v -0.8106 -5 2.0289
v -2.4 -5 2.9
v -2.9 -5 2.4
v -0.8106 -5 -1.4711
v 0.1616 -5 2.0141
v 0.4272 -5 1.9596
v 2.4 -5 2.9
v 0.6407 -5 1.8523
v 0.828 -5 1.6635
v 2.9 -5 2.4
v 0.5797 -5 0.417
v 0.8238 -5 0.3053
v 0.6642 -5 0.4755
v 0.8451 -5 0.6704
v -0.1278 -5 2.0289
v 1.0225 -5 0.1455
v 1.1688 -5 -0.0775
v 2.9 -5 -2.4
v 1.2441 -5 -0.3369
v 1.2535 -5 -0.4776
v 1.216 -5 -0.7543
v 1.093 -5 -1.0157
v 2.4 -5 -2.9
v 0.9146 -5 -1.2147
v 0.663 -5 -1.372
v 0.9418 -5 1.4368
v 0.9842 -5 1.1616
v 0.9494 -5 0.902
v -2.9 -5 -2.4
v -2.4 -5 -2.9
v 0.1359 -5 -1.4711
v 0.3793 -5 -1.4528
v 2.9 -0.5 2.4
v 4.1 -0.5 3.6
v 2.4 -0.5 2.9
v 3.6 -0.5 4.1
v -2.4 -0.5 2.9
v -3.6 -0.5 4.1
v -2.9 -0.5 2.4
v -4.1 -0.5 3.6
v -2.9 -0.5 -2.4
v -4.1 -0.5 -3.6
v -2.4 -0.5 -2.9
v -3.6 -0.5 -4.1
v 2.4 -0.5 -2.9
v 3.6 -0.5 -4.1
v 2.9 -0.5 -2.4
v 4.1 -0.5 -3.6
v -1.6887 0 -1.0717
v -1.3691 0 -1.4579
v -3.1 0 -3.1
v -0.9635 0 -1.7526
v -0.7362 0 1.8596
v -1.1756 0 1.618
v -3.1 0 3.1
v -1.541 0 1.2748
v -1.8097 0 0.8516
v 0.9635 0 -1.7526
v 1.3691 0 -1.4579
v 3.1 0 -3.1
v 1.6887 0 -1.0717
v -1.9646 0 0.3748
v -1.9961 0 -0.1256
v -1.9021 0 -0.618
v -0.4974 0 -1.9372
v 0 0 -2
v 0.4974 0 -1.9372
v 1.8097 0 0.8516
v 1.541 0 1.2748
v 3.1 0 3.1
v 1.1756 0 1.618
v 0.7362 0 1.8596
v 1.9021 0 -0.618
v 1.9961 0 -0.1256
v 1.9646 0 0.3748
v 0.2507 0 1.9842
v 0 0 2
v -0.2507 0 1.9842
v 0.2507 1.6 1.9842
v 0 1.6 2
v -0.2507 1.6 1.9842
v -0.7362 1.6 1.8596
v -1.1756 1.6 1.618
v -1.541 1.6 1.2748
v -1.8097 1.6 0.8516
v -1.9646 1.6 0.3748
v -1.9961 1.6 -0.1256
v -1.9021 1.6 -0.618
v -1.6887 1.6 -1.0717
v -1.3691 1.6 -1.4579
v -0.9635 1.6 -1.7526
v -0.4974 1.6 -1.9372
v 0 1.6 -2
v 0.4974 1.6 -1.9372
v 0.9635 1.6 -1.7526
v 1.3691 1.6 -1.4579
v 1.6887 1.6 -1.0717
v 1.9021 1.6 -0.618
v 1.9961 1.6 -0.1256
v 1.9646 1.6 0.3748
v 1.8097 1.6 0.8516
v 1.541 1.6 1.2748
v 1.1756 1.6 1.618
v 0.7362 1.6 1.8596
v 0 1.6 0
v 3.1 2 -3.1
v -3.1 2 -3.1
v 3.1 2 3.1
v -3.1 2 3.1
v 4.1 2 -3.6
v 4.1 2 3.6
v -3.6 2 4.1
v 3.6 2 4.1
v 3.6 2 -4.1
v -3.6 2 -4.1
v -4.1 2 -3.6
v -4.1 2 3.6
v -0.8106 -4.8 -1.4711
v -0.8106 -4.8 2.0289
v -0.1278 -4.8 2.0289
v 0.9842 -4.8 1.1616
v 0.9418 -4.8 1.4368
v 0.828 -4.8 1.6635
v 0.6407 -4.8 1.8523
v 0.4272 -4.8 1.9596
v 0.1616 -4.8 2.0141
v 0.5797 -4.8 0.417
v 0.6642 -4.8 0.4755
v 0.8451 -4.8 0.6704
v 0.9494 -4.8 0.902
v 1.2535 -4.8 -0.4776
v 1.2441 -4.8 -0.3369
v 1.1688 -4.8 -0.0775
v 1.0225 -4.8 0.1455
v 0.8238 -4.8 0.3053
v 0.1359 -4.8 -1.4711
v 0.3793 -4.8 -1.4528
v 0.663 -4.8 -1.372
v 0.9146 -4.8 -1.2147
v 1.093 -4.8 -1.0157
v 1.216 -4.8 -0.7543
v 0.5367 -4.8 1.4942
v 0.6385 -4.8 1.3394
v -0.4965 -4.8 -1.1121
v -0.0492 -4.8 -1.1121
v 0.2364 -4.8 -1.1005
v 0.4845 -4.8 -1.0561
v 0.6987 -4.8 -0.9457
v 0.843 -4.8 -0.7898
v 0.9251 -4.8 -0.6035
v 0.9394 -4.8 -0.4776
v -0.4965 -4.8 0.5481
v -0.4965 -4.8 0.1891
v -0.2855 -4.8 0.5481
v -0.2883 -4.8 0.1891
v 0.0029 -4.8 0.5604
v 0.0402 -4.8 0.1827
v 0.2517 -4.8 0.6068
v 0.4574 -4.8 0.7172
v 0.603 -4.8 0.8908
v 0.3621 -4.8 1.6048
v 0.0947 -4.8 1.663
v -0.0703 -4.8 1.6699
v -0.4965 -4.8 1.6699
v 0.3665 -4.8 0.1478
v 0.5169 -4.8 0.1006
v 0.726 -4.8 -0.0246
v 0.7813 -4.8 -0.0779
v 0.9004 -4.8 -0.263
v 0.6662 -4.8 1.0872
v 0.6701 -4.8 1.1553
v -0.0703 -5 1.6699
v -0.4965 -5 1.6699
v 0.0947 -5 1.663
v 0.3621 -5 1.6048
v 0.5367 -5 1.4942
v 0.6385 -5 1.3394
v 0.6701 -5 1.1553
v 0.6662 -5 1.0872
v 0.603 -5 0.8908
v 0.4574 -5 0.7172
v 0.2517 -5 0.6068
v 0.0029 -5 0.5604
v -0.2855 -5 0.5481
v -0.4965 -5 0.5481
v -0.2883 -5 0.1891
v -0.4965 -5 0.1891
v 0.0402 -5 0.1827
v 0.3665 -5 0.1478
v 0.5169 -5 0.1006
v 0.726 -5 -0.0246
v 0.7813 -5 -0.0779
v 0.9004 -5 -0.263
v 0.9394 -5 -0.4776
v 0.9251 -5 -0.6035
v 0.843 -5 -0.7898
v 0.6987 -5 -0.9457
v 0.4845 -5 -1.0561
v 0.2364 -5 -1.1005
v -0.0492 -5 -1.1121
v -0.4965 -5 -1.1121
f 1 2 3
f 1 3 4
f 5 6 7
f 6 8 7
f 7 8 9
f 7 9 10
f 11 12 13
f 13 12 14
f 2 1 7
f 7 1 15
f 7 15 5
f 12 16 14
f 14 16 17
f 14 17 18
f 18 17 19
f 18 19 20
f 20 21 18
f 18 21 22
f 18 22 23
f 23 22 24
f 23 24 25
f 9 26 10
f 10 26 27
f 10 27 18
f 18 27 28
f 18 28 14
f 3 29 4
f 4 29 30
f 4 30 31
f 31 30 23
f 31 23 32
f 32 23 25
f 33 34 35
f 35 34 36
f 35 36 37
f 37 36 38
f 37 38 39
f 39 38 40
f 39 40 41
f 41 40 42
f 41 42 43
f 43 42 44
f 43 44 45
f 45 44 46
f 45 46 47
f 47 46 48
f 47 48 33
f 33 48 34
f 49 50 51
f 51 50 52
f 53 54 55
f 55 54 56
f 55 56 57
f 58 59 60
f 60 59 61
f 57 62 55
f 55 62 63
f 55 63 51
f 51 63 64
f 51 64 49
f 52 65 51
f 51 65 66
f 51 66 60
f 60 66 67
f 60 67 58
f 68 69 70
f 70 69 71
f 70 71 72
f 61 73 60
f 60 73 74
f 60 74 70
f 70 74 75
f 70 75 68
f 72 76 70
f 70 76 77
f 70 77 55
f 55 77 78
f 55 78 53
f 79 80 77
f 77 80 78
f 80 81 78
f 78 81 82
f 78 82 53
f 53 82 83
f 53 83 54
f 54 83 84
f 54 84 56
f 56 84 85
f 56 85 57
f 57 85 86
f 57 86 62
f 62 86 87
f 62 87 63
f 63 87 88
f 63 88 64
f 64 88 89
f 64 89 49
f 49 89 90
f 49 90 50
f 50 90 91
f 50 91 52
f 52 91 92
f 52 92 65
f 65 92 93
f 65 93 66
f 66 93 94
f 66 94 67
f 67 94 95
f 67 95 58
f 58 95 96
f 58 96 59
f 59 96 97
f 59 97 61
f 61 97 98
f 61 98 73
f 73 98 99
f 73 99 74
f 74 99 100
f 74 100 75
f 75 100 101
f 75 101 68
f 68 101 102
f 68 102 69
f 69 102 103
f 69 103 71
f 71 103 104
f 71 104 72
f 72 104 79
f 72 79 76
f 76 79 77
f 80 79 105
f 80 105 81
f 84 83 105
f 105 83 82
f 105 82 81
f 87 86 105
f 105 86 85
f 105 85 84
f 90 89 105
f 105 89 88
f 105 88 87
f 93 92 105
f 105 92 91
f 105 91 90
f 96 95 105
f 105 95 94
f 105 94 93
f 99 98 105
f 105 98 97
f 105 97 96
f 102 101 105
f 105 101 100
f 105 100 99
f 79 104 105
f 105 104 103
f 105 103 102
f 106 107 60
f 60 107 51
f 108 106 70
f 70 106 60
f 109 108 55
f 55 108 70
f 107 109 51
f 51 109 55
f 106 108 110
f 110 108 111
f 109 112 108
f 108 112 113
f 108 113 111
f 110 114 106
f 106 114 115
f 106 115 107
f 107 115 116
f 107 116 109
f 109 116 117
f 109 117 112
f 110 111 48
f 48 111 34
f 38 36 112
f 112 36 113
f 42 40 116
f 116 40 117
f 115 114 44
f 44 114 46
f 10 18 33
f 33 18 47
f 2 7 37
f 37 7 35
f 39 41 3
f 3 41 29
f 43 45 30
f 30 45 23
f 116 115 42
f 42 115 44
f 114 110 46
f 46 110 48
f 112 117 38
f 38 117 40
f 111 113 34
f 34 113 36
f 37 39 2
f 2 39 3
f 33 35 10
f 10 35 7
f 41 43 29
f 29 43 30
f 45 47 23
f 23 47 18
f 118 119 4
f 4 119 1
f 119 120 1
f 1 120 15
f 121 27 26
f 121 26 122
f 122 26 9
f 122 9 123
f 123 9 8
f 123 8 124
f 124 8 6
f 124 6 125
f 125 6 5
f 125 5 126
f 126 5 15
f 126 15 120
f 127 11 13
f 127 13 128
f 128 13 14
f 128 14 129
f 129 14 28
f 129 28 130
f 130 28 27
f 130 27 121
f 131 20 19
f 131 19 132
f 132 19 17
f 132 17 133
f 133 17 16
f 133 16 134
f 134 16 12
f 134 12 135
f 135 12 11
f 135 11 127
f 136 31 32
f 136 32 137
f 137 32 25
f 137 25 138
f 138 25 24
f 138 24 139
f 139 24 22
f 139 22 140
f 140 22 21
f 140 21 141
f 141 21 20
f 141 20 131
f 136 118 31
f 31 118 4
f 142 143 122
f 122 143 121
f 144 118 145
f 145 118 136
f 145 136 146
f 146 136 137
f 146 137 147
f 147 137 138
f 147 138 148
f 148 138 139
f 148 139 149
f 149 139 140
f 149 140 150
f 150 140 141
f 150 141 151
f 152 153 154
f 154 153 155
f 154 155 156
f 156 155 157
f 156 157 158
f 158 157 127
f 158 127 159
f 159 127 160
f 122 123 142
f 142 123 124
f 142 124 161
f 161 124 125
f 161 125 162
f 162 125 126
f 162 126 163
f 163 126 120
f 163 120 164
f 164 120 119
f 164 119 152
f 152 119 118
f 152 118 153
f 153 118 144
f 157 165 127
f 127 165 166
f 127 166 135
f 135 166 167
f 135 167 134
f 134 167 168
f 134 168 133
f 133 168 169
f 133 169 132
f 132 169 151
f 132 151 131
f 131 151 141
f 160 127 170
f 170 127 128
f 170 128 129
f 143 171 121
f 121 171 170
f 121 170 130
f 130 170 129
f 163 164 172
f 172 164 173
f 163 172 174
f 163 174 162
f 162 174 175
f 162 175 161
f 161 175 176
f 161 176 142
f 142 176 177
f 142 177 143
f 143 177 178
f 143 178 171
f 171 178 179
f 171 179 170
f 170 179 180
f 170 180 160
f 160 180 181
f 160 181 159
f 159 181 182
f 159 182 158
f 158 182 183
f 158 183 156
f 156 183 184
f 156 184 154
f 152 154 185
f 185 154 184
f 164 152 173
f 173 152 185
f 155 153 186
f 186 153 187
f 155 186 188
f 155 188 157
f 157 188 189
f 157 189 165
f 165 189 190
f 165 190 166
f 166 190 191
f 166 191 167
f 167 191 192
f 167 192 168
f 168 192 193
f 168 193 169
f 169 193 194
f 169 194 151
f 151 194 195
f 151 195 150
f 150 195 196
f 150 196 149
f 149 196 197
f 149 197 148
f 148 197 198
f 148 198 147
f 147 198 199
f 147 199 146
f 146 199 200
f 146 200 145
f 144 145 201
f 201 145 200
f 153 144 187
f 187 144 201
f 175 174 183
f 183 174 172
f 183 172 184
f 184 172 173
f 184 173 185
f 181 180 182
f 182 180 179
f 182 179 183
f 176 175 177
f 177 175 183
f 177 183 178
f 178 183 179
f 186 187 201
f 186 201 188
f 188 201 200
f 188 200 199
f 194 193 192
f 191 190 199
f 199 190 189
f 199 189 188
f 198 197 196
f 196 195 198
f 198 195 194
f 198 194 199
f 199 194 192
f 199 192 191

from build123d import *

# Parameters (mm, degrees)
SKETCH1_R           = 2
BOSS_EXTRUDE1_DEPTH = 1.6
SKETCH1_3_W         = 8.2
SKETCH1_3_H         = 8.2
SKETCH1_3_W_2       = 6.2
SKETCH1_3_H_2       = 6.2
BOSS_EXTRUDE2_DEPTH = 2
SKETCH1_4_W         = 8.2
SKETCH1_4_H         = 8.2
BOSS_EXTRUDE3_DEPTH = 0.5
SKETCH3_W           = 5.8
SKETCH3_H           = 5.8
BOSS_EXTRUDE4_DEPTH = 4.5
CHAMFER1_SIZE       = 0.5
CUT_EXTRUDE1_DEPTH  = 0.2


with BuildPart() as part:
    # Sketch1 → Boss-Extrude1 (new body)
    with BuildSketch(Plane(origin=(0, 0, 0), x_dir=(1, 0, 0), z_dir=(0, 1, 0))):
        Circle(SKETCH1_R)
    extrude(amount=BOSS_EXTRUDE1_DEPTH)



with BuildPart() as body_2:
    # Sketch1<3> → Boss-Extrude2 (new body)
    with BuildSketch(Plane(origin=(0, 0, 0), x_dir=(1, 0, 0), z_dir=(0, 1, 0))):
        Rectangle(SKETCH1_3_W, SKETCH1_3_H)
        Rectangle(SKETCH1_3_W_2, SKETCH1_3_H_2, mode=Mode.SUBTRACT)
    extrude(amount=BOSS_EXTRUDE2_DEPTH)


with BuildPart() as part_1:
    add(part.part)

    add(body_2.part)  # Boss-Extrude3 merges body 2
    # Sketch1<4> → Boss-Extrude3 (add)
    with BuildSketch(Plane(origin=(0, 0, 0), x_dir=(1, 0, 0), z_dir=(0, 1, 0))):
        Rectangle(SKETCH1_4_W, SKETCH1_4_H)
    extrude(amount=-BOSS_EXTRUDE3_DEPTH)

    # Sketch3 → Boss-Extrude4 (add)
    with BuildSketch(Plane.XZ.offset(0.5)):
        Rectangle(SKETCH3_W, SKETCH3_H)
    extrude(amount=BOSS_EXTRUDE4_DEPTH)

    # Chamfer1
    chamfer1_edges = [part_1.edges().sort_by_distance(p)[0] for p in [
        (-4.1, 0.75, -4.1),
        (4.1, 0.75, -4.1),
        (-4.1, 0.75, 4.1),
        (4.1, 0.75, 4.1),
        (-2.9, -2.75, 2.9),
        (2.9, -2.75, 2.9),
        (-2.9, -2.75, -2.9),
        (2.9, -2.75, -2.9),
    ]]
    chamfer(chamfer1_edges, length=CHAMFER1_SIZE)

    # Sketch4 → Cut-Extrude1 (cut)
    with BuildSketch(Plane.XZ.offset(5)):
        with BuildLine():
            Line((-0.810649843, 2.028880102), (-0.127757215, 2.028880102))
            add(Edge.make_bspline(
                [(-0.127757215, 2.028880102), (-0.094328737, 2.028704351), (-0.029536026, 2.028363703), (0.064683416, 2.023080572), (0.152932226, 2.015876902), (0.235235999, 2.00444681), (0.311556701, 1.990655032), (0.382124338, 1.973953216), (0.44671451, 1.953926603), (0.523827247, 1.922080321), (0.611747908, 1.874757153), (0.7069463, 1.804828588), (0.78835054, 1.719296125), (0.858536857, 1.622813469), (0.914337977, 1.516677698), (0.954707274, 1.403418509), (0.980265149, 1.284496767), (0.982893584, 1.202853589), (0.984221952, 1.161592441)],
                knots=[0, 0, 0, 0, 1.001505555, 1.941167018, 2.826882275, 3.653841531, 4.429895133, 5.150066043, 5.825578002, 6.45369114, 7.647487171, 8.808567382, 9.977351308, 11.170798116, 12.373658725, 13.556498008, 14.765093433, 16, 16, 16, 16], degree=3))
            add(Edge.make_bspline(
                [(0.984221952, 1.161592441), (0.983128733, 1.122939886), (0.980980456, 1.046983969), (0.960437697, 0.935889859), (0.928277028, 0.830138641), (0.883571779, 0.730116255), (0.825469783, 0.638082642), (0.756611464, 0.553295376), (0.673534662, 0.479344319), (0.611291422, 0.438001416), (0.579674676, 0.417001095)],
                knots=[0, 0, 0, 0, 1.044552857, 2.05264487, 3.044412934, 4.028983338, 5.005914585, 5.980388656, 6.974128949, 8, 8, 8, 8], degree=3))
            add(Edge.make_bspline(
                [(0.579674676, 0.417001095), (0.619435104, 0.401736096), (0.695506651, 0.372530372), (0.800192664, 0.320894908), (0.890387509, 0.264732798), (0.966784655, 0.203400947), (1.03212231, 0.137292137), (1.089175251, 0.065437022), (1.137856625, -0.013101736), (1.179569549, -0.097505271), (1.212118305, -0.186911739), (1.236494209, -0.280482515), (1.250461658, -0.377882071), (1.2524493, -0.44416745), (1.253452721, -0.477630315)],
                knots=[0, 0, 0, 0, 1.27268992, 2.434971085, 3.483601985, 4.442670788, 5.356604649, 6.2567628, 7.179492994, 8.113709626, 9.066344395, 10.018646069, 10.999752585, 12, 12, 12, 12], degree=3))
            add(Edge.make_bspline(
                [(1.253452721, -0.477630315), (1.252475875, -0.511797187), (1.250553903, -0.579021465), (1.236373931, -0.6777766), (1.212364824, -0.772151546), (1.179293678, -0.862756729), (1.136131363, -0.949416864), (1.083603399, -1.032230128), (1.020971835, -1.110364458), (0.950908966, -1.184688081), (0.871646821, -1.251515869), (0.786131066, -1.311031575), (0.693284746, -1.359977637), (0.594632752, -1.401093659), (0.489068436, -1.432500857), (0.377065829, -1.454473431), (0.258721527, -1.469278468), (0.177511776, -1.470495673), (0.13586458, -1.471119898)],
                knots=[0, 0, 0, 0, 0.978564426, 1.925352924, 2.850884081, 3.763762016, 4.682927383, 5.618979971, 6.567305752, 7.547517671, 8.540179244, 9.531824382, 10.526200242, 11.540722885, 12.589160233, 13.674978461, 14.80764778, 16, 16, 16, 16], degree=3))
            Line((0.13586458, -1.471119898), (-0.810649843, -1.471119898))
            Line((-0.810649843, -1.471119898), (-0.810649843, 2.028880102))
        make_face()
        with BuildLine():
            Line((-0.496547279, 1.669905743), (-0.496547279, 0.548110871))
            Line((-0.496547279, 0.548110871), (-0.285509619, 0.548110871))
            add(Edge.make_bspline(
                [(-0.285509619, 0.548110871), (-0.254660823, 0.548510794), (-0.195054664, 0.549283527), (-0.108734767, 0.551497044), (-0.028609749, 0.557695087), (0.045182084, 0.563891349), (0.112524528, 0.573965937), (0.173268389, 0.58595806), (0.228366986, 0.598640965), (0.291906532, 0.620210452), (0.36397948, 0.652088127), (0.440812584, 0.701559963), (0.508547054, 0.760484316), (0.565744242, 0.828475278), (0.612555712, 0.903341464), (0.645069427, 0.983888344), (0.667116712, 1.068108476), (0.669108243, 1.125926729), (0.670119388, 1.155282345)],
                knots=[0, 0, 0, 0, 1.156816544, 2.235205308, 3.236616184, 4.169592532, 5.011045266, 5.787822928, 6.49130361, 7.128639758, 8.301311294, 9.436451833, 10.541879658, 11.654887649, 12.756523258, 13.837046038, 14.901820046, 16, 16, 16, 16], degree=3))
            add(Edge.make_bspline(
                [(0.670119388, 1.155282345), (0.669593208, 1.174708117), (0.668561048, 1.212813889), (0.660107745, 1.268363243), (0.645740171, 1.320606996), (0.627285877, 1.370261106), (0.601497189, 1.415772956), (0.571133725, 1.458716152), (0.534448035, 1.49762827), (0.492690722, 1.533997769), (0.4446821, 1.566242296), (0.390450808, 1.59448306), (0.329263131, 1.617223836), (0.262150276, 1.637139989), (0.188079188, 1.651128283), (0.107904635, 1.66278167), (0.020969916, 1.668714412), (-0.039175187, 1.669499775), (-0.070265228, 1.669905743)],
                knots=[0, 0, 0, 0, 0.91205012, 1.789085906, 2.630437955, 3.453916878, 4.269457761, 5.079663411, 5.91843418, 6.774407191, 7.675494373, 8.627863946, 9.638891023, 10.736472738, 11.911756761, 13.175263542, 14.539845004, 16, 16, 16, 16], degree=3))
            Line((-0.070265228, 1.669905743), (-0.496547279, 1.669905743))
        make_face(mode=Mode.SUBTRACT)
        with BuildLine():
            Line((-0.496547279, 0.189136512), (-0.496547279, -1.112145539))
            Line((-0.496547279, -1.112145539), (-0.049231574, -1.112145539))
            add(Edge.make_bspline(
                [(-0.049231574, -1.112145539), (-0.017212648, -1.111761792), (0.044499611, -1.111022169), (0.133600841, -1.108607615), (0.216183945, -1.103115339), (0.29187208, -1.09446949), (0.361482533, -1.08509104), (0.424180236, -1.072479759), (0.480473429, -1.058030799), (0.545747737, -1.035696627), (0.619251245, -1.001000156), (0.698462102, -0.948685929), (0.76888832, -0.886362622), (0.828693579, -0.814231707), (0.877706568, -0.73580038), (0.913362023, -0.65265503), (0.93535288, -0.566169503), (0.938015049, -0.507202791), (0.939350157, -0.477630315)],
                knots=[0, 0, 0, 0, 1.160039823, 2.235823828, 3.228722157, 4.157150951, 4.99529583, 5.772374946, 6.472645482, 7.099169577, 8.269452708, 9.405989375, 10.527446681, 11.663510218, 12.788923519, 13.866172445, 14.929861265, 16, 16, 16, 16], degree=3))
            add(Edge.make_bspline(
                [(0.939350157, -0.477630315), (0.939074053, -0.459136974), (0.938526298, -0.422448593), (0.930265683, -0.368532773), (0.918251813, -0.3163069), (0.902720379, -0.26562916), (0.880100912, -0.217415783), (0.853694367, -0.170713224), (0.822732965, -0.125459744), (0.774488799, -0.068247491), (0.704316815, -0.002330478), (0.604610039, 0.062207024), (0.491237741, 0.114254831), (0.409010249, 0.136354308), (0.366533651, 0.147770326)],
                knots=[0, 0, 0, 0, 0.723448775, 1.435228256, 2.130040452, 2.821711965, 3.505591119, 4.210454504, 4.921174351, 5.648778258, 7.137944449, 8.670945889, 10.280296675, 12, 12, 12, 12], degree=3))
            add(Edge.make_bspline(
                [(0.366533651, 0.147770326), (0.349504555, 0.15122541), (0.312581962, 0.158716745), (0.252374382, 0.166624448), (0.183638513, 0.173669508), (0.106215636, 0.178880666), (0.020007795, 0.184267209), (-0.075169124, 0.18636203), (-0.178926439, 0.18886129), (-0.250918811, 0.189042425), (-0.288314106, 0.189136512)],
                knots=[0, 0, 0, 0, 0.634451884, 1.375622551, 2.216452059, 3.157844607, 4.20941857, 5.370758133, 6.634282058, 8, 8, 8, 8], degree=3))
            Line((-0.288314106, 0.189136512), (-0.496547279, 0.189136512))
        make_face(mode=Mode.SUBTRACT)
    extrude(amount=-CUT_EXTRUDE1_DEPTH, mode=Mode.SUBTRACT)


solid = part_1.part
